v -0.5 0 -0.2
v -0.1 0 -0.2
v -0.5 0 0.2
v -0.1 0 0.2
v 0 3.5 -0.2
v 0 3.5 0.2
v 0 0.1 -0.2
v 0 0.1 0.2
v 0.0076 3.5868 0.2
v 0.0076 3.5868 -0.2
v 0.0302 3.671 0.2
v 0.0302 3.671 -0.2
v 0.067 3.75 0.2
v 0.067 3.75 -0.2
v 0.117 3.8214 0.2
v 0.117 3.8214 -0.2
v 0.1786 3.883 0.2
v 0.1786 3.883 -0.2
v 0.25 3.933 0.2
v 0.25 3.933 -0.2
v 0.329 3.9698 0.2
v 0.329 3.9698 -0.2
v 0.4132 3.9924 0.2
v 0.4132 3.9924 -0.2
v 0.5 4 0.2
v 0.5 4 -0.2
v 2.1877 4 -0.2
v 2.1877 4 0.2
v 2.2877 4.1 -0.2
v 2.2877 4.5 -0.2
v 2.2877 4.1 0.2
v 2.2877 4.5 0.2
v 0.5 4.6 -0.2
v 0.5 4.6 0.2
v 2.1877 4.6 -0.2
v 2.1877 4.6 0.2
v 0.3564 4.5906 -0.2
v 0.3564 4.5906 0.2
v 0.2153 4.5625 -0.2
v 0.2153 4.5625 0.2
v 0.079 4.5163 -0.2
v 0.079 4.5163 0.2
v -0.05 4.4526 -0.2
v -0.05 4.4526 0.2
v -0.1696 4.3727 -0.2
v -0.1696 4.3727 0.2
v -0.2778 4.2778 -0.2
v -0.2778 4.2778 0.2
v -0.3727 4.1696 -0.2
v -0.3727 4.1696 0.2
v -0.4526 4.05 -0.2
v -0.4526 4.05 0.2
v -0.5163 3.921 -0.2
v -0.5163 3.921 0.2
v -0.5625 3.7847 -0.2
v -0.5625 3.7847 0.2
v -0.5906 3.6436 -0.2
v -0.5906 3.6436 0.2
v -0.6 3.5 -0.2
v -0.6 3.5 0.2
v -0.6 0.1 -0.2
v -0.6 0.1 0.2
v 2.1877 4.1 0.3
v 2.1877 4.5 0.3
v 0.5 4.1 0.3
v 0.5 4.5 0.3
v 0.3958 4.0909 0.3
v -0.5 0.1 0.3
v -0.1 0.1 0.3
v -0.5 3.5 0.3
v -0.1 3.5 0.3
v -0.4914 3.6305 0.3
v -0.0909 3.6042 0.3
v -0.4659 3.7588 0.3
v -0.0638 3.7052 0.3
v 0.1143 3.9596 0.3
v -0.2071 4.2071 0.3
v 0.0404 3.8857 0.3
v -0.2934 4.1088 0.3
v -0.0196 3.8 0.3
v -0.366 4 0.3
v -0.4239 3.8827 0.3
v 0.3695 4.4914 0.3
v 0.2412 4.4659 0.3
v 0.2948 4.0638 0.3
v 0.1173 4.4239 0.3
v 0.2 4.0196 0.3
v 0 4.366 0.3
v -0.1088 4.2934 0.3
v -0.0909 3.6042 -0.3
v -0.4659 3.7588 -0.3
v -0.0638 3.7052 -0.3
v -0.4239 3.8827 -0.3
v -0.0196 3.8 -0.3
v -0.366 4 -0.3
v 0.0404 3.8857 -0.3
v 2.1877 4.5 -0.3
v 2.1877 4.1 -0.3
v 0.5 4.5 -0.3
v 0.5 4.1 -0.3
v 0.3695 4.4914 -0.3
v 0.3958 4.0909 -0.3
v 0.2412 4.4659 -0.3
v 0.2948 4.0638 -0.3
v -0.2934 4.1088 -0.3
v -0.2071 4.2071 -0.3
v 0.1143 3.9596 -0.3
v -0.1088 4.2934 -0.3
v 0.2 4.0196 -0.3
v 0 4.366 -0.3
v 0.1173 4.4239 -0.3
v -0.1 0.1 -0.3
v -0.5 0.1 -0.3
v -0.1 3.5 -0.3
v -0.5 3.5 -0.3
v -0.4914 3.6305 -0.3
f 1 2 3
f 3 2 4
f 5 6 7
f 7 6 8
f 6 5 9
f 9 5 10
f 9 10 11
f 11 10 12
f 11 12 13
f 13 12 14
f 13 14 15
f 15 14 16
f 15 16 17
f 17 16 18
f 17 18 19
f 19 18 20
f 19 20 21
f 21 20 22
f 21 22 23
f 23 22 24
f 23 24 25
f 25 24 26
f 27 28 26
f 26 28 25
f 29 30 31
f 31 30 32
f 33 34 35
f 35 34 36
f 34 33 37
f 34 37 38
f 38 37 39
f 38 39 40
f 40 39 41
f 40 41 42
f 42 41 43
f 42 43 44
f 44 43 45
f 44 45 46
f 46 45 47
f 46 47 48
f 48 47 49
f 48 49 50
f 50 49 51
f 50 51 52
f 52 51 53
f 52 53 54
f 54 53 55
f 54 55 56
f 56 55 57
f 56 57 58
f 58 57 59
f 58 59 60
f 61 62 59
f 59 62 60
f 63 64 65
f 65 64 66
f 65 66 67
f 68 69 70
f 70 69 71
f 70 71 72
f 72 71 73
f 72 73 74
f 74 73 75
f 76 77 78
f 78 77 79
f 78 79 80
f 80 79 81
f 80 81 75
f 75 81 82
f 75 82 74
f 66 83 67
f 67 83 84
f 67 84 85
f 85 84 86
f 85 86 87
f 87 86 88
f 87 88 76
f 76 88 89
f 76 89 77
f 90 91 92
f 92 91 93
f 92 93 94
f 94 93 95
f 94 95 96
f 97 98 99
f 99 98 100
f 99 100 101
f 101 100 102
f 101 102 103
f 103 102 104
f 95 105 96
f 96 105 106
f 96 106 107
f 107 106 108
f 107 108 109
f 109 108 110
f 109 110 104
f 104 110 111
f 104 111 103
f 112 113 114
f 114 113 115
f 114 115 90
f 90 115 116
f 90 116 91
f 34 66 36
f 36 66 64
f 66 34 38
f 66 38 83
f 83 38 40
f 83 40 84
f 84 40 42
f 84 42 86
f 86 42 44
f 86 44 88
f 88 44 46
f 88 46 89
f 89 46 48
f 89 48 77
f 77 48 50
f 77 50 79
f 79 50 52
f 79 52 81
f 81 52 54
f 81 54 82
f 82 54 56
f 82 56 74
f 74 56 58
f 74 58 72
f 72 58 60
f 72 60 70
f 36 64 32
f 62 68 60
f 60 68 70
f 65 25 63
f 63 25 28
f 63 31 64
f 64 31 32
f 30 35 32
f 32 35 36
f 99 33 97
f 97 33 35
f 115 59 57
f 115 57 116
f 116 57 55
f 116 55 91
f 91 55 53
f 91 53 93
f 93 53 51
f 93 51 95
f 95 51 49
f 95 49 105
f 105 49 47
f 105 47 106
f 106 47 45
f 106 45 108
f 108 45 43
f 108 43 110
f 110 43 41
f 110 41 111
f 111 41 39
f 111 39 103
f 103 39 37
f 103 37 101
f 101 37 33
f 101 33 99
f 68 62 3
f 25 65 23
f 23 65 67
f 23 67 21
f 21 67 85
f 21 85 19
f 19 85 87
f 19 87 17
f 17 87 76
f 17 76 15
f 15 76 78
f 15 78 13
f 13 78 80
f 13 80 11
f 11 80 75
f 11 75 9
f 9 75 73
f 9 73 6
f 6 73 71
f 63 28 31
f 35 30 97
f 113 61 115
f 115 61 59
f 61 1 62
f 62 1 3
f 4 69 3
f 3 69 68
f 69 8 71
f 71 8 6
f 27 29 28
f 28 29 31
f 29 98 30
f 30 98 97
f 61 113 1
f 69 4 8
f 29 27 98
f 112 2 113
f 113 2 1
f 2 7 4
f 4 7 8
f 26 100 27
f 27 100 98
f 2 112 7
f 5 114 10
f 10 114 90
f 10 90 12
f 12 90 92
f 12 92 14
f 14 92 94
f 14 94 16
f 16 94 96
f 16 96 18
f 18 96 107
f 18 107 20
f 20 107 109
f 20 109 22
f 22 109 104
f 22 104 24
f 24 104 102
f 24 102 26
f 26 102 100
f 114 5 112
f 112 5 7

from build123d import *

# Parameters (mm, degrees)
BOSS_EXTRUDE1_DEPTH = 0.3
CHAMFER1_SIZE       = 0.1


with BuildPart() as part:
    # Sketch1 → Boss-Extrude1 (new body, symmetric)
    with BuildSketch(Plane.XY):
        with BuildLine():
            Line((-0.6, 0), (-0.6, 3.5))
            ThreePointArc((-0.6, 3.5), (-0.277817459, 4.277817459), (0.5, 4.6))
            Line((0.5, 4.6), (2.287695887, 4.6))
            Line((2.287695887, 4.6), (2.287695887, 4))
            Line((2.287695887, 4), (0.5, 4))
            ThreePointArc((0.5, 4), (0.146446609, 3.853553391), (0, 3.5))
            Line((0, 3.5), (0, 0))
            Line((0, 0), (-0.6, 0))
        make_face()
    extrude(amount=BOSS_EXTRUDE1_DEPTH, both=True)

    # Chamfer1
    chamfer1_edges = [part.edges().sort_by_distance(p)[0] for p in [
        (0.146446609, 3.853553391, 0.3),
        (0, 1.75, -0.3),
        (-0.3, 0, -0.3),
        (1.393847944, 4, 0.3),
        (-0.6, 0, 0),
        (2.287695887, 4.6, 0),
        (2.287695887, 4, 0),
        (0, 0, 0),
        (2.287695887, 4.3, 0.3),
        (1.393847944, 4.6, 0.3),
        (-0.277817459, 4.277817459, 0.3),
        (-0.6, 1.75, 0.3),
        (-0.3, 0, 0.3),
        (0, 1.75, 0.3),
        (-0.6, 1.75, -0.3),
        (-0.277817459, 4.277817459, -0.3),
        (1.393847944, 4.6, -0.3),
        (2.287695887, 4.3, -0.3),
        (1.393847944, 4, -0.3),
        (0.146446609, 3.853553391, -0.3),
    ]]
    chamfer(chamfer1_edges, length=CHAMFER1_SIZE)


solid = part.part
